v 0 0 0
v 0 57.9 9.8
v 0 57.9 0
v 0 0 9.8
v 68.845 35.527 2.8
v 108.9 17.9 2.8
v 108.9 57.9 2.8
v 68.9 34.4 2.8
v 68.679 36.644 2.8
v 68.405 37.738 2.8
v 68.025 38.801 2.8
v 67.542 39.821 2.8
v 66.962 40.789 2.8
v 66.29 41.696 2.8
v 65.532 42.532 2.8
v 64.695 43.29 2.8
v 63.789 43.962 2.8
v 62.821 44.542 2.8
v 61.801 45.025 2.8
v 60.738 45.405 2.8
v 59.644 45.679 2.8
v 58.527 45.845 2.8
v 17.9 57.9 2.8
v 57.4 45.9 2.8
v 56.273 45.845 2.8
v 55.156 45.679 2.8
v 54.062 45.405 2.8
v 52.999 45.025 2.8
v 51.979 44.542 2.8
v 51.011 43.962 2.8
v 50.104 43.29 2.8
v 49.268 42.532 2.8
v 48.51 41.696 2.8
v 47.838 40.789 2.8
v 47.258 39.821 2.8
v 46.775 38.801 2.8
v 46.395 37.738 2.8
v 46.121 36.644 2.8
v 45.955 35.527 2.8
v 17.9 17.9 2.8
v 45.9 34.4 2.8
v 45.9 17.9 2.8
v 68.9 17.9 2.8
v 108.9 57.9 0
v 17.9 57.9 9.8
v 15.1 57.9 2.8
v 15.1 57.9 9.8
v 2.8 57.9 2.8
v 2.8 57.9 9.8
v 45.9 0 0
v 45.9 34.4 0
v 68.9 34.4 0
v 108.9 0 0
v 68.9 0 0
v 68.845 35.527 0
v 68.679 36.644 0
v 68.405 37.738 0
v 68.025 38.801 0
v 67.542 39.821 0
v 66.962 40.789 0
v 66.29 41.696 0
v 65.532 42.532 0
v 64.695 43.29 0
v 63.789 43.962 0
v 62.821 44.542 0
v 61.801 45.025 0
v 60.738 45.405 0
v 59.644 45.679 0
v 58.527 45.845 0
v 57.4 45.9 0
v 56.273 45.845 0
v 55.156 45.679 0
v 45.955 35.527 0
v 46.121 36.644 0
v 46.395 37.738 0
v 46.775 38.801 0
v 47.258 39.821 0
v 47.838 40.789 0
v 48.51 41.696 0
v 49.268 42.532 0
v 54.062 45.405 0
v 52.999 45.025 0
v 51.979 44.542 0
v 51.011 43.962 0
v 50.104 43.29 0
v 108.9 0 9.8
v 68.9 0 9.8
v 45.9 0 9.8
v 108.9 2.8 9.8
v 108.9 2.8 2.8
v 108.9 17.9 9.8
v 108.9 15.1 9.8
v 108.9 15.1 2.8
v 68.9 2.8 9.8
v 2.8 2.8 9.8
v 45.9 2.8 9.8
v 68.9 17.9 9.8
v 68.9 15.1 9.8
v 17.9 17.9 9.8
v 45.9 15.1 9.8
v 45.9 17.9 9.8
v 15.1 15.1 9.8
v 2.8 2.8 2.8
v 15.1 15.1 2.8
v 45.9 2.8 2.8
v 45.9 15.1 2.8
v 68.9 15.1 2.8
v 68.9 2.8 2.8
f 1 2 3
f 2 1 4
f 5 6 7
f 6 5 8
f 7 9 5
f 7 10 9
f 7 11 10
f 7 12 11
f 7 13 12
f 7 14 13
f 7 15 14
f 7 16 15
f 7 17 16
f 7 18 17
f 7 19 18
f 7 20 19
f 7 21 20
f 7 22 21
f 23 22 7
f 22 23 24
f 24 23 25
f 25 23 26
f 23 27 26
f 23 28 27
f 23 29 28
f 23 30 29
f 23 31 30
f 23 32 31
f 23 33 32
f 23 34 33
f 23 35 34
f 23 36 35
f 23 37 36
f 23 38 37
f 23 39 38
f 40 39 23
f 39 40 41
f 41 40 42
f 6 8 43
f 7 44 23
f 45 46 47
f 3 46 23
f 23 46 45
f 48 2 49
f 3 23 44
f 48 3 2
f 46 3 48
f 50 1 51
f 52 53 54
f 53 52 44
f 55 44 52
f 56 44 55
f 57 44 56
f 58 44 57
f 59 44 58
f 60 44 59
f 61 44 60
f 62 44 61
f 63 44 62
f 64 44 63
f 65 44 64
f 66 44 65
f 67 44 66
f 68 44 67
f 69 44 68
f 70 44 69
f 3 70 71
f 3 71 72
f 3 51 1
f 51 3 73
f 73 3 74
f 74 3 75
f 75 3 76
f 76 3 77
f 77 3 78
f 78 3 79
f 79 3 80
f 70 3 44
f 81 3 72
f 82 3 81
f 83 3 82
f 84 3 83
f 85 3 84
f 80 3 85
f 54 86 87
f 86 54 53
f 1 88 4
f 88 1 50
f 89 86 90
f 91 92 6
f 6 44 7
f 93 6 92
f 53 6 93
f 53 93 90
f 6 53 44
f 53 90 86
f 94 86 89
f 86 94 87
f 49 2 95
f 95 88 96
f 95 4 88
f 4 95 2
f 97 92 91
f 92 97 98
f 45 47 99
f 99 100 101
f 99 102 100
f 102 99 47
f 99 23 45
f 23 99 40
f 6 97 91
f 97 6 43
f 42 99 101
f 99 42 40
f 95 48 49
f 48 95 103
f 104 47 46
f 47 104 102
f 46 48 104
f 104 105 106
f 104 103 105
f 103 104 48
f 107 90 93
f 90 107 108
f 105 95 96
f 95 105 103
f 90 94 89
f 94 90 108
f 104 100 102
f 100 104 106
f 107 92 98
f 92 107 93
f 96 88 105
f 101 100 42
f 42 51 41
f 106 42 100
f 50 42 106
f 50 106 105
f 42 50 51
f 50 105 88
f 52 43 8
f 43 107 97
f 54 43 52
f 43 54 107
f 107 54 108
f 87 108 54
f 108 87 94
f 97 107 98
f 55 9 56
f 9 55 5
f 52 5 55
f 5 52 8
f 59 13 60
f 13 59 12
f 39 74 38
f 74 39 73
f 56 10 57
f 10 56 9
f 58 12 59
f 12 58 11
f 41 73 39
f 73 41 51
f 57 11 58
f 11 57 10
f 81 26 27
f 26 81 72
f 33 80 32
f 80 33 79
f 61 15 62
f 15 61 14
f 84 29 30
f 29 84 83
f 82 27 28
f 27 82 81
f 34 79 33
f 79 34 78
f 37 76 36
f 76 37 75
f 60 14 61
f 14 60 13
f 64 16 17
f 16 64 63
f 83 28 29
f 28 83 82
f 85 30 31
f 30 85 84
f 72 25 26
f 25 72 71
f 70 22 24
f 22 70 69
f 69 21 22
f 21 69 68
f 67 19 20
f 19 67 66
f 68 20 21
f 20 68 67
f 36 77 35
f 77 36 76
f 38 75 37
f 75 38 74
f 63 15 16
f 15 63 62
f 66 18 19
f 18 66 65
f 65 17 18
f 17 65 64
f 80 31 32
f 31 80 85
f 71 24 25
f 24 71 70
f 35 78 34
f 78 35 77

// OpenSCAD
/*
  Aquarium Shrimp Escape Guard - Left guard (intake pipe)
  -------------------------------------------------------
  Opens the left guard on its own: render (F6) and export the STL (F7).
  All parameters are in aquarium-shrimp-escape-guard.scad.
*/

use <aquarium-shrimp-escape-guard.scad>

left_guard();
